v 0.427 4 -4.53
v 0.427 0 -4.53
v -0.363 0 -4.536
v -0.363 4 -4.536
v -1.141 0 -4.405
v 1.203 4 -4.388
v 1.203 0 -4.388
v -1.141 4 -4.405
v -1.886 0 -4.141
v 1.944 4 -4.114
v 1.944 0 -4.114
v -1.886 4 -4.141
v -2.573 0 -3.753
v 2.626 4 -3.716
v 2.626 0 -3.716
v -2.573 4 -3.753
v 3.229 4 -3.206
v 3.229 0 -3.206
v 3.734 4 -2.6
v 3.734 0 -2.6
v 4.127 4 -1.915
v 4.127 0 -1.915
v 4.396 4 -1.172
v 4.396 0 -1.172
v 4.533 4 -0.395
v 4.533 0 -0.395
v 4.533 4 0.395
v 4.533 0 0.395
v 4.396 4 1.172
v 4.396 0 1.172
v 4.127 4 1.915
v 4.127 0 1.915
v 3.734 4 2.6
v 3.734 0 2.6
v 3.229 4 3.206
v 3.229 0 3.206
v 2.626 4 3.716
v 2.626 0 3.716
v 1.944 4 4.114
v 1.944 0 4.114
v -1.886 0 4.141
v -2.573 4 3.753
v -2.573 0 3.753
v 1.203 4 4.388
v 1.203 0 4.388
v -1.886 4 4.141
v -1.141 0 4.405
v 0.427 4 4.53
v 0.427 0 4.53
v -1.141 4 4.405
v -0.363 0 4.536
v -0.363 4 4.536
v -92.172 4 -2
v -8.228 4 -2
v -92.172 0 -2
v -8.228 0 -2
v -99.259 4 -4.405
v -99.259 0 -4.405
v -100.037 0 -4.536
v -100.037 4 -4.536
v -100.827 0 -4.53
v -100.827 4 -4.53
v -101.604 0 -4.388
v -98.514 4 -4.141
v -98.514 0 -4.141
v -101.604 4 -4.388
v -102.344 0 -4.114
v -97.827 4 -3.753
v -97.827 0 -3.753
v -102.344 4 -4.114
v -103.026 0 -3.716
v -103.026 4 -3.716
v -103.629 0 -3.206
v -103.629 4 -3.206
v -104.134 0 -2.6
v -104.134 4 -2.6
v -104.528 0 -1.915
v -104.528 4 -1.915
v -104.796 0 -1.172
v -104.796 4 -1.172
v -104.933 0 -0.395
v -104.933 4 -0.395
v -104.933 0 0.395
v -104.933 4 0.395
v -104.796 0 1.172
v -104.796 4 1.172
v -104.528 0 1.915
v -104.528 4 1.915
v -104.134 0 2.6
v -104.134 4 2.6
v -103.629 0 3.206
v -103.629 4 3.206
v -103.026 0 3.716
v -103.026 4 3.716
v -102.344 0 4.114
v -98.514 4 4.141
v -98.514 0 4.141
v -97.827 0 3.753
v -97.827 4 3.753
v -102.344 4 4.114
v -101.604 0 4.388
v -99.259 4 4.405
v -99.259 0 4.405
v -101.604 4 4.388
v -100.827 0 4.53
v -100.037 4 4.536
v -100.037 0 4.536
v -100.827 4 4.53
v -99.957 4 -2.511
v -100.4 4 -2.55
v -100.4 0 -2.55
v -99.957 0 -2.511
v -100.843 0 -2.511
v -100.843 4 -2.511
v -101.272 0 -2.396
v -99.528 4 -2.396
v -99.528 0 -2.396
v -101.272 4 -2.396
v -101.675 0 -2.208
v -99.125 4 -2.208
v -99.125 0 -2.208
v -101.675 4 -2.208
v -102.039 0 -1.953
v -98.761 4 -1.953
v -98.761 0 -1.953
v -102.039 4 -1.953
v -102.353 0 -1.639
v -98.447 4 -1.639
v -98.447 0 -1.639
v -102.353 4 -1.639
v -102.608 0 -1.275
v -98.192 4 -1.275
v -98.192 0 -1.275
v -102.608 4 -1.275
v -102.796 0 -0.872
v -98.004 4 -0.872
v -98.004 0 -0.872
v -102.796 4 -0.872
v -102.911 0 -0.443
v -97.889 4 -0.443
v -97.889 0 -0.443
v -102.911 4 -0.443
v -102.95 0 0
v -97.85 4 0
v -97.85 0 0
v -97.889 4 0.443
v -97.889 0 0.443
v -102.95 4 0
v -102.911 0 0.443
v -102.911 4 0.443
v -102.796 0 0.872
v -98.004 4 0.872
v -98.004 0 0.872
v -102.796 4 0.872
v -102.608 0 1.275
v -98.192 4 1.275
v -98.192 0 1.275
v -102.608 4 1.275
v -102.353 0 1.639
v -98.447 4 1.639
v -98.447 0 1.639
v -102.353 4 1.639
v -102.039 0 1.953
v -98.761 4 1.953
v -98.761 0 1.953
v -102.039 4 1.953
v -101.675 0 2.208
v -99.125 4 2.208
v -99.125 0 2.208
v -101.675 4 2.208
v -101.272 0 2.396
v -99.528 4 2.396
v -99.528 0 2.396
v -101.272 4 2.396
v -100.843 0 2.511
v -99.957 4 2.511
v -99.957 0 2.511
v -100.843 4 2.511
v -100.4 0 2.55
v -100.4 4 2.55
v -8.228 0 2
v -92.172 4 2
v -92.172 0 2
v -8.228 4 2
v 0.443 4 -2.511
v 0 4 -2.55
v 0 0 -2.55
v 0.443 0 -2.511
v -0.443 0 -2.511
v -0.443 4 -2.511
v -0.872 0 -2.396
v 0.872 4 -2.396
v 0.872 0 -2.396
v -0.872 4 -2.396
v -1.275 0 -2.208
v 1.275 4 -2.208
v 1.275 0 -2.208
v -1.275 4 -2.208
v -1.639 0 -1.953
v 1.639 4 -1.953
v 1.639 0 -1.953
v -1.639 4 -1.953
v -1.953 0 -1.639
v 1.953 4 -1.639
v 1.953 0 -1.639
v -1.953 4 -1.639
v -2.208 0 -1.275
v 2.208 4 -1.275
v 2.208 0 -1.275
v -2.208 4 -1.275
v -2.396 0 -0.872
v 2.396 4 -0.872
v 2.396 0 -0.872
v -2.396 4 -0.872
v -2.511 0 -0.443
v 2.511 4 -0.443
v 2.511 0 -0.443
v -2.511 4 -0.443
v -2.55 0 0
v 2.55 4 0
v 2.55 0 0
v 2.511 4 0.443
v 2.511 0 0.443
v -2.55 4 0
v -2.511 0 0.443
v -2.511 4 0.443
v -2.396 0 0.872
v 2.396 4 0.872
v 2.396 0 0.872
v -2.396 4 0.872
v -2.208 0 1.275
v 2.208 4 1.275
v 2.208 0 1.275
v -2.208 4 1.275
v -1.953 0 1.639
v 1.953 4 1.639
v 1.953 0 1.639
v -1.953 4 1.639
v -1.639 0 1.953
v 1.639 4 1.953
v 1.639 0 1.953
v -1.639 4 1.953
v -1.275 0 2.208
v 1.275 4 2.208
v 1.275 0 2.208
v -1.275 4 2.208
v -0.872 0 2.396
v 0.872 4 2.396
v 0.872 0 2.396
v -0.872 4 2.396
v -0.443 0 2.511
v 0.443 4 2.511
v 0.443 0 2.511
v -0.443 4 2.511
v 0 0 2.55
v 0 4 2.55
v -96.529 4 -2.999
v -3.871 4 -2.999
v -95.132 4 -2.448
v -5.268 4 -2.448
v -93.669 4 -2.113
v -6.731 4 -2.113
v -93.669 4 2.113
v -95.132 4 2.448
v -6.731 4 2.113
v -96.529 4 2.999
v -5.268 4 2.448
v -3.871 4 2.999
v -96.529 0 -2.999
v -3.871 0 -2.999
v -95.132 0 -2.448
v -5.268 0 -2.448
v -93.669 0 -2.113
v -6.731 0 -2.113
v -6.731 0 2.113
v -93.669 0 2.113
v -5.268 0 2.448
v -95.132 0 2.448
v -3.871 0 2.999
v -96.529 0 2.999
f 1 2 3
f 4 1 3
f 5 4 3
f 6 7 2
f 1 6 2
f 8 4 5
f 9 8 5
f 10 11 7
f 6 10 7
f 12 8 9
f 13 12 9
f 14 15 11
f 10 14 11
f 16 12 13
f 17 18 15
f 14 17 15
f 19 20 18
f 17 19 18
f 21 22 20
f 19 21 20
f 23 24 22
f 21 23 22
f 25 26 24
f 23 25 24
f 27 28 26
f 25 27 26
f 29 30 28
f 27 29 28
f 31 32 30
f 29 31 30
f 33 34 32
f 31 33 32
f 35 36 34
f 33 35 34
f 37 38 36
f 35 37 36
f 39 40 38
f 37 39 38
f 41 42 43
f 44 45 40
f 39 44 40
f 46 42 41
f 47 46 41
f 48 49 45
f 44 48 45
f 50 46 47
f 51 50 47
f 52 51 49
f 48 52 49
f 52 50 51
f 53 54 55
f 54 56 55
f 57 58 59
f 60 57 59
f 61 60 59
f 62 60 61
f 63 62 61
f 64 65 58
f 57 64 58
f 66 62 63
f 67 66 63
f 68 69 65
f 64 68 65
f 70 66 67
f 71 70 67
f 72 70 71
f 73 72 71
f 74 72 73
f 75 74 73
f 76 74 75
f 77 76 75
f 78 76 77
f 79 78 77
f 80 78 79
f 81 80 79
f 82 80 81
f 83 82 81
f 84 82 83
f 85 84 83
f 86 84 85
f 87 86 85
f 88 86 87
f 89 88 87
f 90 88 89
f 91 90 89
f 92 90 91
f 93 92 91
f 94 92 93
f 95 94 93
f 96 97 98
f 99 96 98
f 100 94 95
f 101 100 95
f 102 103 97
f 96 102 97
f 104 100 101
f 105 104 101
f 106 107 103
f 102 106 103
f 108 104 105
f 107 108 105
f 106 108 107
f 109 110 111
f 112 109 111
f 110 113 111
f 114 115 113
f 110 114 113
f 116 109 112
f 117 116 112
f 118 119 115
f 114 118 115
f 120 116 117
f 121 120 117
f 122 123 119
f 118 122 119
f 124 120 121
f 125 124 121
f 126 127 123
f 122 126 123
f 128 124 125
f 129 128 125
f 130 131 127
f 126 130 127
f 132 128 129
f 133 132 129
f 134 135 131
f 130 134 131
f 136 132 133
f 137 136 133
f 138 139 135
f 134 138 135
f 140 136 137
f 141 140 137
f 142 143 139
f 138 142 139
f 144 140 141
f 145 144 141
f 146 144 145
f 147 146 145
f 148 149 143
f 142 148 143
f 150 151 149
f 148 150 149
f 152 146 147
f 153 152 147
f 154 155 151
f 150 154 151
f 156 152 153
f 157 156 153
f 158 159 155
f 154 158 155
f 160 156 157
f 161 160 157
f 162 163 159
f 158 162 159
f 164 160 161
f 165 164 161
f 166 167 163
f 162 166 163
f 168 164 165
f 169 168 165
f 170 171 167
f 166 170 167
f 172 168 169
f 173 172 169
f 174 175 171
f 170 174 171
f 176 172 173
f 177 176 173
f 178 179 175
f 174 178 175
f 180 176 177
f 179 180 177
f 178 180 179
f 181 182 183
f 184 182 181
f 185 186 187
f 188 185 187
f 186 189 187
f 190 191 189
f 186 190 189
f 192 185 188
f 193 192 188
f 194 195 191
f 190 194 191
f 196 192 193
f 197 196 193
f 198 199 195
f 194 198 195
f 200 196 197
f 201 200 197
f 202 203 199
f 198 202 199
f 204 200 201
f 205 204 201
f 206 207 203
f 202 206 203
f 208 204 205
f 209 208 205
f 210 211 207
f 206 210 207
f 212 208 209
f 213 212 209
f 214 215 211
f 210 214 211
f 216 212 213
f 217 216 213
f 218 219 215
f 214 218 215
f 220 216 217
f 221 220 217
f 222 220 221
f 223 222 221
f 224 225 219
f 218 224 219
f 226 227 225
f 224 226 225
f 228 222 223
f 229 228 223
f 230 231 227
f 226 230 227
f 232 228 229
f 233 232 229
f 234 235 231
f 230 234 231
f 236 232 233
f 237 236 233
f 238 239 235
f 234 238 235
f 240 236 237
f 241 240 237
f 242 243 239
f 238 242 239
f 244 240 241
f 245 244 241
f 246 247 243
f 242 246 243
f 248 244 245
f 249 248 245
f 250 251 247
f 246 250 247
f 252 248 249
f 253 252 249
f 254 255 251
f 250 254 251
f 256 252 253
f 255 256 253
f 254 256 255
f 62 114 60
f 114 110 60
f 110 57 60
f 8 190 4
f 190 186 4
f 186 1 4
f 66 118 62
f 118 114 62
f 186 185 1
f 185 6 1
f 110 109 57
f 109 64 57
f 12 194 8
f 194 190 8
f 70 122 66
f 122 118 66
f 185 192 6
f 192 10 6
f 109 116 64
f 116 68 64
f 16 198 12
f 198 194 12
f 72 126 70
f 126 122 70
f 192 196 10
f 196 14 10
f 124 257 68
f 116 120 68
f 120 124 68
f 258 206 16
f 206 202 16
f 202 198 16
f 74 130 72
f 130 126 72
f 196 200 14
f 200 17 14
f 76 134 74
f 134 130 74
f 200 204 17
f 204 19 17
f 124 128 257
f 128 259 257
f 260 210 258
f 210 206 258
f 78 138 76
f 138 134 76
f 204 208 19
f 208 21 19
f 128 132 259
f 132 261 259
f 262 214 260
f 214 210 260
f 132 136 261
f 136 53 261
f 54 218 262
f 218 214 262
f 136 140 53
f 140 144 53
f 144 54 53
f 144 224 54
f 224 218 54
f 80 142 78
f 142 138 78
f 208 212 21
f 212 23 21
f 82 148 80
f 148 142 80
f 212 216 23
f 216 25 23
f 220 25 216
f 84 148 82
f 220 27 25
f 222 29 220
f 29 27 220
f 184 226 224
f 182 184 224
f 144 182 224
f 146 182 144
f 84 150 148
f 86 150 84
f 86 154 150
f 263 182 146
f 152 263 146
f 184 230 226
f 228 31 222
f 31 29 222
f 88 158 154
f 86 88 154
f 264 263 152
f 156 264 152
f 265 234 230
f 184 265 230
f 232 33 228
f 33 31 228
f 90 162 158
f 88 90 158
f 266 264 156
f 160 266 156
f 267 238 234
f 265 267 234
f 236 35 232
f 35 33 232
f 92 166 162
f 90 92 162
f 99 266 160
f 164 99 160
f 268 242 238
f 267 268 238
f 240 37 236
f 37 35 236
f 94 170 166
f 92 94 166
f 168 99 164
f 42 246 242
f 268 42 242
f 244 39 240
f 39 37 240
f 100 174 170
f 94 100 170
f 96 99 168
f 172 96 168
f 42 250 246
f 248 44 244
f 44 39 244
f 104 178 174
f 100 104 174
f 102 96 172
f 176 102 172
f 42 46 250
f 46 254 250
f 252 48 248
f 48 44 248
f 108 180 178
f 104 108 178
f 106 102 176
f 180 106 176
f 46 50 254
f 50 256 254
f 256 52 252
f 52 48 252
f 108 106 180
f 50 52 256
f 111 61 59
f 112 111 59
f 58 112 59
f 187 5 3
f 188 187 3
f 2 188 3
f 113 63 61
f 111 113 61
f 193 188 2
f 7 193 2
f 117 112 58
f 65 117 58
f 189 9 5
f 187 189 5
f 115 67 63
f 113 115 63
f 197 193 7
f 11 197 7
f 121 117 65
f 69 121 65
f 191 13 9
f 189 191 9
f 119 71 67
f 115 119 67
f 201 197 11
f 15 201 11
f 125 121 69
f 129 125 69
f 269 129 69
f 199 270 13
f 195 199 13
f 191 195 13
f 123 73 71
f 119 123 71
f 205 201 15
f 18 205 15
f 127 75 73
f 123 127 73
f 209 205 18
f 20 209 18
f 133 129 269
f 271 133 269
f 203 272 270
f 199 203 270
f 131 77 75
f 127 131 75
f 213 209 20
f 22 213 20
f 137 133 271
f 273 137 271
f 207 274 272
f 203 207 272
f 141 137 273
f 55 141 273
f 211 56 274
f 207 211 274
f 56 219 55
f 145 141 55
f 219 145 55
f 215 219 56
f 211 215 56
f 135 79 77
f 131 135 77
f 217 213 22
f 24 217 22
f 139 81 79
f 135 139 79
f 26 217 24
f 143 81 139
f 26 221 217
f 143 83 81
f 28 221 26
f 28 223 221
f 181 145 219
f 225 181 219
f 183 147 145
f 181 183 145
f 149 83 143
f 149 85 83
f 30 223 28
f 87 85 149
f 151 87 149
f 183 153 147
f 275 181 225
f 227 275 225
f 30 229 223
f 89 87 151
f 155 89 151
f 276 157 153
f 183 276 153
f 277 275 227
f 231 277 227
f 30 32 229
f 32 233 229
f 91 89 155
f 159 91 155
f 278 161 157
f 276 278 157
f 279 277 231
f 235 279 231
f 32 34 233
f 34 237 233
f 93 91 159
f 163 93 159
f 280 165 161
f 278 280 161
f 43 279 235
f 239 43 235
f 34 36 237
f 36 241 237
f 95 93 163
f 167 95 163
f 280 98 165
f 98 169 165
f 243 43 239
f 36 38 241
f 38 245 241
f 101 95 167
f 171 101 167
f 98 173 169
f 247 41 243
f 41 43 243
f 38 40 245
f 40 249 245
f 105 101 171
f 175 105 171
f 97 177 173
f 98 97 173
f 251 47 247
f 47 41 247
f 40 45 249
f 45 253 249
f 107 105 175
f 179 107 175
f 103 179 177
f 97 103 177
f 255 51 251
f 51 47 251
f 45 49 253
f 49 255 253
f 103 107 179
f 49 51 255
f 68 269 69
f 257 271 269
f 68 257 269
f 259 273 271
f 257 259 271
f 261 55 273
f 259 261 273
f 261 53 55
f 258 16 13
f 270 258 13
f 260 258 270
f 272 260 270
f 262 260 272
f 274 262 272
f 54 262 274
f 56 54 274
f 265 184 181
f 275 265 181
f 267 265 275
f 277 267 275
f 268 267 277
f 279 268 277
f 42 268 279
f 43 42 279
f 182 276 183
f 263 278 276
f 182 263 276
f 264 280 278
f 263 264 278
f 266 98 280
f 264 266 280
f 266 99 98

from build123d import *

# Parameters (mm, degrees)
BOSS_EXTRUDE1_DEPTH = 4
FILLET1_R           = 10


with BuildPart() as part:
    # Sketch1 → Boss-Extrude1 (new body)
    with BuildSketch(Plane(origin=(0, 0, 0), x_dir=(1, 0, 0), z_dir=(0, 1, 0))):
        with BuildLine():
            Line((-98.818070798, 2), (-96.313130783, 2))
            ThreePointArc((-96.313130783, 2), (-104.95, 0), (-96.313130783, -2))
            Line((-96.313130783, -2), (-98.818070798, -2))
            ThreePointArc((-98.818070798, -2), (-102.95, 0), (-98.818070798, 2))
        make_face()
        with BuildLine():
            Line((-4.55, 0), (-95.85, 0))
            ThreePointArc((-95.85, 0), (-95.967294565, -1.026461169), (-96.313130783, -2))
            Line((-96.313130783, -2), (-4.086869217, -2))
            ThreePointArc((-4.086869217, -2), (-4.432705435, -1.026461169), (-4.55, 0))
        make_face()
        with BuildLine():
            ThreePointArc((-96.313130783, 2), (-95.967294565, 1.026461169), (-95.85, 0))
            Line((-95.85, 0), (-4.55, 0))
            ThreePointArc((-4.55, 0), (-4.432705435, 1.026461169), (-4.086869217, 2))
            Line((-4.086869217, 2), (-96.313130783, 2))
        make_face()
        with BuildLine():
            Line((-97.85, 0), (-95.85, 0))
            ThreePointArc((-95.85, 0), (-95.967294565, 1.026461169), (-96.313130783, 2))
            Line((-96.313130783, 2), (-98.818070798, 2))
            ThreePointArc((-98.818070798, 2), (-98.104741903, 1.110986169), (-97.85, 0))
        make_face()
        with BuildLine():
            ThreePointArc((-96.313130783, -2), (-95.967294565, -1.026461169), (-95.85, 0))
            Line((-95.85, 0), (-97.85, 0))
            ThreePointArc((-97.85, 0), (-98.104741903, -1.110986169), (-98.818070798, -2))
            Line((-98.818070798, -2), (-96.313130783, -2))
        make_face()
        with BuildLine():
            ThreePointArc((4.55, 0), (1.026461169, 4.432705435), (-4.086869217, 2))
            Line((-4.086869217, 2), (-1.581929202, 2))
            ThreePointArc((-1.581929202, 2), (1.110986169, 2.295258097), (2.55, 0))
            ThreePointArc((2.55, 0), (1.110986169, -2.295258097), (-1.581929202, -2))
            Line((-1.581929202, -2), (-4.086869217, -2))
            ThreePointArc((-4.086869217, -2), (1.026461169, -4.432705435), (4.55, 0))
        make_face()
        with BuildLine():
            ThreePointArc((-4.086869217, 2), (-4.432705435, 1.026461169), (-4.55, 0))
            Line((-4.55, 0), (-2.55, 0))
            ThreePointArc((-2.55, 0), (-2.295258097, 1.110986169), (-1.581929202, 2))
            Line((-1.581929202, 2), (-4.086869217, 2))
        make_face()
        with BuildLine():
            Line((-2.55, 0), (-4.55, 0))
            ThreePointArc((-4.55, 0), (-4.432705435, -1.026461169), (-4.086869217, -2))
            Line((-4.086869217, -2), (-1.581929202, -2))
            ThreePointArc((-1.581929202, -2), (-2.295258097, -1.110986169), (-2.55, 0))
        make_face()
    extrude(amount=BOSS_EXTRUDE1_DEPTH)

    # Fillet1
    fillet1_edges = [part.edges().sort_by_distance(p)[0] for p in [
        (-4.086869217, 2, 2),
        (-96.313130783, 2, 2),
        (-96.313130783, 2, -2),
        (-4.086869217, 2, -2),
    ]]
    fillet(fillet1_edges, radius=FILLET1_R)


solid = part.part
